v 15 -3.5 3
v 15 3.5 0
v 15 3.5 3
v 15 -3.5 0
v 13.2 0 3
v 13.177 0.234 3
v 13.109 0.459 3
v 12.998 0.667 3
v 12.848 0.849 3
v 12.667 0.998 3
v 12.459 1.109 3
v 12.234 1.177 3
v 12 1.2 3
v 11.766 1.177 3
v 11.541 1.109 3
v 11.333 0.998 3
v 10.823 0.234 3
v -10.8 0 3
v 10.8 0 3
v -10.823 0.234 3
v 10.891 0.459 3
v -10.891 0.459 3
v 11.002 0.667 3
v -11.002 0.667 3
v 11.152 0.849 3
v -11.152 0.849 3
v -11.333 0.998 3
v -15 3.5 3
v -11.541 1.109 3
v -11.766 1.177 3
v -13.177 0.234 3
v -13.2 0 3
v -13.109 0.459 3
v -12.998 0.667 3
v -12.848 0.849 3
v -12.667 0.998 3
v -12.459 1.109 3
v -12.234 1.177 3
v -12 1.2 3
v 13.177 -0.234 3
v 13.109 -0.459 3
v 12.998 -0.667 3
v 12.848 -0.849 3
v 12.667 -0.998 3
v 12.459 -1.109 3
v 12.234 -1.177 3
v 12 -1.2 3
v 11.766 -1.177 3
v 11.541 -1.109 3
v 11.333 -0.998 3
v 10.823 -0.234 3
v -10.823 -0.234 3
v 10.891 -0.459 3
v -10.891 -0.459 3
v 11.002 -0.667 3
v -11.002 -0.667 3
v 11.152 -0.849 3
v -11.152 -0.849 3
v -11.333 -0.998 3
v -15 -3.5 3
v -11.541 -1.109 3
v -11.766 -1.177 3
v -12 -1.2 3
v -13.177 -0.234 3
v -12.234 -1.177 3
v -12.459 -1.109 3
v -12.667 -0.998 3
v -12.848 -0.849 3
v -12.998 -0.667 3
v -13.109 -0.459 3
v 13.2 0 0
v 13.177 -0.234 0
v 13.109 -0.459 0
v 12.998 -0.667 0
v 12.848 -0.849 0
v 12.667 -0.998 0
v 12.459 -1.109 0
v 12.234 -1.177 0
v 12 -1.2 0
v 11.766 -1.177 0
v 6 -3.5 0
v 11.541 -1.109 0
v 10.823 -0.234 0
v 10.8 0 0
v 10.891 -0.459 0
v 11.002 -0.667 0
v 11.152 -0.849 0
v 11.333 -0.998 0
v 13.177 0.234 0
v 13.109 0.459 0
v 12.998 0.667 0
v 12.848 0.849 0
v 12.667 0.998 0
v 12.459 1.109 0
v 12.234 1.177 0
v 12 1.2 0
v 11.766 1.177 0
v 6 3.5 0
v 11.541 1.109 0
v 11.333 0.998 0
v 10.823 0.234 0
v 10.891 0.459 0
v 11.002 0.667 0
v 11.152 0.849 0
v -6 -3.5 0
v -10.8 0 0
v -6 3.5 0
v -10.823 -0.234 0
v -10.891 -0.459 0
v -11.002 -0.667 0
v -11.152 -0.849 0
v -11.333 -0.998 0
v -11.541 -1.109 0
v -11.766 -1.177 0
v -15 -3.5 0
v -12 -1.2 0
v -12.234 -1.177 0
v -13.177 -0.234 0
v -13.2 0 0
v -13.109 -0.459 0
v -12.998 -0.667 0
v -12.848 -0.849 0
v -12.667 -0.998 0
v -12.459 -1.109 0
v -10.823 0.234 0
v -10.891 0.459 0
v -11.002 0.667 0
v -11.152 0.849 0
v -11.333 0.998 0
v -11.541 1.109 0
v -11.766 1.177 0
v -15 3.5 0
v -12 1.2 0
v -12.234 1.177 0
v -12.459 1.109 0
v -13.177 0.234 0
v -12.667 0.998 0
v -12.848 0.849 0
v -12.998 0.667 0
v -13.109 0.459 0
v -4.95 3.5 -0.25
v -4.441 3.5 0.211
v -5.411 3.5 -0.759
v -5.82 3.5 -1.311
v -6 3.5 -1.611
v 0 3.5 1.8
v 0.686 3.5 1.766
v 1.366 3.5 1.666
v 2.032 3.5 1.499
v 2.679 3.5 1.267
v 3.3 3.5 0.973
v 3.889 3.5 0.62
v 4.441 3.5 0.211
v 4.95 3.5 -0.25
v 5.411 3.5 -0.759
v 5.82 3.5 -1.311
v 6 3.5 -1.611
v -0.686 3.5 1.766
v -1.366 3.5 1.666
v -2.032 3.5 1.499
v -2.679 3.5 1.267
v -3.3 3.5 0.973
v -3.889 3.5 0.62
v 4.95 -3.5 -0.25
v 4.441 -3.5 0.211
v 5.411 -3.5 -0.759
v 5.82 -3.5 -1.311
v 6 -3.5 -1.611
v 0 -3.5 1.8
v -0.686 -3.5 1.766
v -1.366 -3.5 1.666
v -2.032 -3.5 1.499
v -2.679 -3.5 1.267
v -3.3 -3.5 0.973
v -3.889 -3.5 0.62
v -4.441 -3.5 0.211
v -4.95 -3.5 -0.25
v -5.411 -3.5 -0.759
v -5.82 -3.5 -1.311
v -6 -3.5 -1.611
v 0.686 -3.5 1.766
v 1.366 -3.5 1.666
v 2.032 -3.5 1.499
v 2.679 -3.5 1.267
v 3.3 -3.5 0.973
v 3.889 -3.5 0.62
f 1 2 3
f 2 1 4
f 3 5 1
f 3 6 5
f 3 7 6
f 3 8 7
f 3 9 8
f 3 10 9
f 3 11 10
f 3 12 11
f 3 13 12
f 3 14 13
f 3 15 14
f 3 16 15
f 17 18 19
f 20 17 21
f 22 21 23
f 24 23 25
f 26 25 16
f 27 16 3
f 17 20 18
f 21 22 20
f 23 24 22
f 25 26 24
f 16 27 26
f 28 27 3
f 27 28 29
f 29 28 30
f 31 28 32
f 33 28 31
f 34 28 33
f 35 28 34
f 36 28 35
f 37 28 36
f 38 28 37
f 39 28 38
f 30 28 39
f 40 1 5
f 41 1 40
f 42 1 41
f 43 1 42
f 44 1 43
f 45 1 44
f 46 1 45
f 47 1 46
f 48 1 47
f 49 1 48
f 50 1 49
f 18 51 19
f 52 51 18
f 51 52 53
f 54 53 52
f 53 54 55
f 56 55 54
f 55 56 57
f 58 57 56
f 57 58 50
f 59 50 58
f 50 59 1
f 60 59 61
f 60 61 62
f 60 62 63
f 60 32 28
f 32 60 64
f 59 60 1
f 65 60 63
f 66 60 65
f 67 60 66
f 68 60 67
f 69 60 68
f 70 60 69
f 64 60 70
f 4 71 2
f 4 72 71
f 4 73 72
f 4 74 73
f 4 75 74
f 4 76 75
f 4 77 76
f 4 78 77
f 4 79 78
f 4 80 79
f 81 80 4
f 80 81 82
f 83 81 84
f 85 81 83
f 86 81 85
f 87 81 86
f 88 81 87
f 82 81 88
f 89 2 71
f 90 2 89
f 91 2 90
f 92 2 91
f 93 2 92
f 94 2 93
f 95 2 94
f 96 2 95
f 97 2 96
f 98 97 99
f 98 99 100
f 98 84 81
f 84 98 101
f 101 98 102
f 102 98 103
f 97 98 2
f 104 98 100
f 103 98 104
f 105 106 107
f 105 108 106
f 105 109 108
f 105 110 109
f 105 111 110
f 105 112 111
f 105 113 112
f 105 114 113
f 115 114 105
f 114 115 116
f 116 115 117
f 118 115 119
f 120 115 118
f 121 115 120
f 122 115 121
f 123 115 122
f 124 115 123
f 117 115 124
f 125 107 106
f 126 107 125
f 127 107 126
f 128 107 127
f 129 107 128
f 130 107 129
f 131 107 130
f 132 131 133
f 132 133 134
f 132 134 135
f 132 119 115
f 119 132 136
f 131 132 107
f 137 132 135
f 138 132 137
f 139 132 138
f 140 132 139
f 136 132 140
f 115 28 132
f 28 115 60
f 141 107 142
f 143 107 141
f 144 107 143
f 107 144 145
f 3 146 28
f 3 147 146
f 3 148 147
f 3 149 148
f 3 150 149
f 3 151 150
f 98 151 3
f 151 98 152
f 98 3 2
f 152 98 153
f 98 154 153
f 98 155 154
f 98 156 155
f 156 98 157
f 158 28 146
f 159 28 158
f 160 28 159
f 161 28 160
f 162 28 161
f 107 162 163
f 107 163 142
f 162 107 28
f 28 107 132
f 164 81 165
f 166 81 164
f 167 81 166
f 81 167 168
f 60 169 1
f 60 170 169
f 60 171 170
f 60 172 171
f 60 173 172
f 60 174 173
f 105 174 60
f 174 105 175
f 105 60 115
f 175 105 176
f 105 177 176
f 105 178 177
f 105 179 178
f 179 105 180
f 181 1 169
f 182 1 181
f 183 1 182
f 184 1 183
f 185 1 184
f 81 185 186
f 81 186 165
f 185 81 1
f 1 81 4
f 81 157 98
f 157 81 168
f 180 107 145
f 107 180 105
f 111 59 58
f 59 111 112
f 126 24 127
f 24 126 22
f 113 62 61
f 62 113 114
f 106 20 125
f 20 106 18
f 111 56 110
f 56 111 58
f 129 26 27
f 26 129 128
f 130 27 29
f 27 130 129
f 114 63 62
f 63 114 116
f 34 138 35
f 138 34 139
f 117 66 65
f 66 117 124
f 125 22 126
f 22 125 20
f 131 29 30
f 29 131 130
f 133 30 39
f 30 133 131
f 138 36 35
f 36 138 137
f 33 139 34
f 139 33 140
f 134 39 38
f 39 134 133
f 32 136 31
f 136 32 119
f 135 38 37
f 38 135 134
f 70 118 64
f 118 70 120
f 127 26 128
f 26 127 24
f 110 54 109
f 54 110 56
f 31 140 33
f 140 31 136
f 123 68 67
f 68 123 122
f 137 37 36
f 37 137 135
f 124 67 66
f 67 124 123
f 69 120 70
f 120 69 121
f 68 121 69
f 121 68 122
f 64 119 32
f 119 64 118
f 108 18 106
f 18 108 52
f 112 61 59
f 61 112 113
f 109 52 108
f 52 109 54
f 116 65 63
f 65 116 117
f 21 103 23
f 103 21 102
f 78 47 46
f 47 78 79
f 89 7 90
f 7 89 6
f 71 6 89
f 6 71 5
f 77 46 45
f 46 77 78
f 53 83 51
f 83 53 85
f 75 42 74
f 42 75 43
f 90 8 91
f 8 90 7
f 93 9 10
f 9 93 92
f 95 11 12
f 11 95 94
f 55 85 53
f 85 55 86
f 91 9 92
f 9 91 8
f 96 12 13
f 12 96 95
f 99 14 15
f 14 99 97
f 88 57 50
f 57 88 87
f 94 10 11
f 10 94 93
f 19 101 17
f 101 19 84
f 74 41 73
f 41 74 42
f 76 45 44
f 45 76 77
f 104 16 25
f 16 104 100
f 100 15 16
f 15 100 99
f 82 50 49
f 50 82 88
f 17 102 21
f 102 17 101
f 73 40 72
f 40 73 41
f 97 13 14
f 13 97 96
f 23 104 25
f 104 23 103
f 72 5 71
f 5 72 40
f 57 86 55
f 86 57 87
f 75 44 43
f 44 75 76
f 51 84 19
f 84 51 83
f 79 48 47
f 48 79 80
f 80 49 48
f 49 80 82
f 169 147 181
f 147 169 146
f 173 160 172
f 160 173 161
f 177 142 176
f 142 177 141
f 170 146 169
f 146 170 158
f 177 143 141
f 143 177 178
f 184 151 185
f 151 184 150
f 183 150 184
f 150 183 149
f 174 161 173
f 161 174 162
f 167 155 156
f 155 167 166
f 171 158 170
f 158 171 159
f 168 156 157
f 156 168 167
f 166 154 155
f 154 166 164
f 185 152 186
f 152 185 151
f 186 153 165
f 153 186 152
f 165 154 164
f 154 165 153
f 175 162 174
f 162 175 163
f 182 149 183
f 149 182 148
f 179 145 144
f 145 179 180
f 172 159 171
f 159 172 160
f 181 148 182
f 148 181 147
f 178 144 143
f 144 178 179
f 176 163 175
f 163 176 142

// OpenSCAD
// file: params.scad
// Shared parameters for the DMX truss controller housing.
// All sizes in mm. "VERIFIED" = read from a datasheet/drawing, "PROPOSAL" = my design choice.
// Coordinates: z is the axis through the middle of the ring, +z towards the viewer.
// z = 0 is the wall side (back of the base).

$fn = 96;

// ---------- base (octagon) ----------
base_flat      = 90;     // across flats                                   PROPOSAL
base_depth     = 22;     // z height of the base for the FIRST TEST         PROPOSAL
base_wall      = 2.5;    // wall thickness                                 PROPOSAL
back_plate     = 2.5;    // back plate thickness                           PROPOSAL
base_r_corner  = base_flat / 2 / cos(22.5);   // circumradius of the octagon

// ---------- pedestal and ring ----------
pedestal_od    = 58;     // PROPOSAL
pedestal_h     = 18;     // PROPOSAL
ring_od        = 58;     // PROPOSAL
ring_id        = 43.0;   // PROPOSAL: carrier radius 20.65 + 0.85 mm running gap (was 41.6 = only 0.15 mm)
ring_h         = 13.2;   // PROPOSAL
ring_gap       = 0.8;    // gap between pedestal top and ring                 PROPOSAL

// ---------- motor: SparkFun ROB-20441 = OT-EM3215D2450Y1R-BEZE (datasheet p8) ----------
// Sizes below are read from the drawing. UNVERIFIED (not stated on the drawing): which face is the stator
// mounting face, which part turns (rotor cup vs hollow shaft), and the gap between rotor and stator base.
// The drawing also shows 2 x dia 2.0 holes on a dia 21.0 circle (not used here). Check on the real motor first.
motor_od       = 32.0;   // VERIFIED rotor/body diameter (32.0 +0.025)
motor_h        = 15.0;   // VERIFIED overall height (15.0 +-0.2)
motor_body_h   = 12.8;   // VERIFIED height of the rotor body without the boss
motor_boss_d   = 11.5;   // VERIFIED raised boss on top of the rotor (11.5 +-0.1)
motor_boss_h   = 2.2;    // VERIFIED (15.0 - 12.8)
motor_bore     = 5.9;    // VERIFIED hollow shaft (5.9 +0.1)
motor_hole_n   = 3;      // read from drawing: three M1.6 holes (face unverified)
motor_hole_pcd = 20.5;   // VERIFIED pitch circle (20.5 +0.1)
motor_hole_thr = 1.6;    // VERIFIED thread M1.6 x 0.35, depth 6.0
motor_poles    = 8;      // VERIFIED datasheet: 8 magnetic poles (SmartKnob firmware assumed 14)

// ---------- display: Waveshare 1.28in Touch LCD ----------
disp_od        = 38.5;   // VERIFIED (Waveshare), round PCB diameter
disp_glass     = 32.4;   // VERIFIED
disp_len       = 39.89;  // VERIFIED, module length including the connector tab

// ---------- Arduino Nano ESP32 ----------
nano_l         = 43.18;  // VERIFIED (Arduino datasheet, mechanical page)
nano_w         = 17.78;  // VERIFIED
nano_hole_dx   = 40.64;  // VERIFIED
nano_hole_dy   = 15.24;  // VERIFIED
nano_hole_d    = 1.66;   // VERIFIED (take M1.6 screws)

// ---------- perfboard ----------
board_x        = 70;     // user owns a 5 x 7 cm perfboard
board_y        = 50;
board_corner   = 4;      // corner cut so it fits the octagon                PROPOSAL

// ---------- USB-C plug (first test: supply plugs straight into the Nano) ----------
usbc_slot_w    = 16;     // PROPOSAL: spec max overmold 12.35 x 6.5, real cables up to 13.0 x 7.4
usbc_slot_h    = 10;     // PROPOSAL

// ---------- Neutrik D-size panel cut-out (XLR NC3FD-LX and USB-C NAUSBC-5G-FL alike) ----------
d_hole         = 24;     // VERIFIED (Neutrik drawing)
d_screw_dx     = 19;     // VERIFIED
d_screw_dy     = 24;     // VERIFIED
d_screw_d      = 3.2;    // VERIFIED
d_flange_w     = 26;     // VERIFIED
d_flange_h     = 31;     // VERIFIED

// ---------- wall mount ----------
key_dx         = 70;     // distance between the two keyholes                PROPOSAL
key_head       = 7;      // head hole diameter                               PROPOSAL
key_slot       = 3.5;    // slot width                                       PROPOSAL
key_slot_len   = 7;      // PROPOSAL

// ---------- fits ----------
fit            = 0.2;    // printer clearance for sliding/clamped fits (PETG, 0.4 mm nozzle)

echo(str("octagon circumradius = ", base_r_corner));

// ---------- z stack of the turning side, derived once and used by every part ----------
// z = 0 is the back of the base. Base is base_depth tall; the front plate closes it at the top.
plate_t        = 2.5;                              // front plate thickness
z_plate_top    = base_depth;                       // 22
z_motor_bot    = z_plate_top;                      // the stator sits ON the plate
z_rotor_top    = z_motor_bot + motor_body_h;       // 34.8
z_boss_top     = z_motor_bot + motor_h;            // 37.0
z_ped_bot      = z_plate_top;
z_ped_top      = z_ped_bot + pedestal_h;           // 40
z_ring_bot     = z_ped_top + ring_gap;             // 40.8
z_ring_top     = z_ring_bot + ring_h;              // 54.0
// display: glass about 1.5 mm below the ring top
glass_recess   = 1.5;                              // PROPOSAL
module_t       = 3.4;                              // pcb + lcd stack. ESTIMATE, not measured on the real module
z_module_top   = z_ring_top - glass_recess;
z_module_bot   = z_module_top - module_t;
carrier_t      = 4;                                // carrier plate thickness
pocket_h       = 2.2;                              // pocket depth for the module pcb
z_carrier_bot  = z_module_bot + pocket_h - carrier_t;   // carrier underside
z_hub_bot      = z_boss_top - motor_boss_h;        // hub rests on the rotor top face (34.8)
hub_t          = 2.4;
z_hub_top      = z_hub_bot + hub_t;
// the column must reach from its foot to the carrier underside
col_foot_z     = z_plate_top - plate_t - 3;        // foot sits under the front plate, 3 mm foot
col_top_z      = z_carrier_bot + (carrier_t - pocket_h) - 0.2;   // 0.2 mm below the pocket floor
// main file
// Clamp bar: a printed bridge over the USB-C plug body, held by two M2 screws.
// A pull on the supply cable then goes into the housing, not into the Nano's USB-C solder joints.
include <params.scad>

bar_len   = 30;     // PROPOSAL, spans the two M2 posts (24 apart)
bar_w     = 7;
bar_t     = 3;
plug_w    = 13.0;   // widest real plug seen (EE.SE), spec 12.35
plug_h    = 7.4;    // tallest real plug seen, spec 6.5

module clamp_bar() {
    post_dx = 24;
    difference() {
        union() {
            // flat bar
            translate([-bar_len/2, -bar_w/2, 0]) cube([bar_len, bar_w, bar_t]);
            // saddle that presses on the plug: a rounded pad
            translate([0, 0, -1.2]) cube([plug_w - 1, bar_w, 2.4], center = true);
        }
        // M2 clearance holes
        for (sx = [-1, 1]) translate([sx * post_dx/2, 0, -2]) cylinder(d = 2.4, h = 10, $fn = 32);
        // soft landing: cut the underside slightly concave so the plug body is held by two lines
        translate([0, 0, -plug_h/2 - 1.5]) rotate([90, 0, 0]) cylinder(d = plug_w + 1, h = bar_w + 2, center = true, $fn = 64);
    }
}

clamp_bar();
